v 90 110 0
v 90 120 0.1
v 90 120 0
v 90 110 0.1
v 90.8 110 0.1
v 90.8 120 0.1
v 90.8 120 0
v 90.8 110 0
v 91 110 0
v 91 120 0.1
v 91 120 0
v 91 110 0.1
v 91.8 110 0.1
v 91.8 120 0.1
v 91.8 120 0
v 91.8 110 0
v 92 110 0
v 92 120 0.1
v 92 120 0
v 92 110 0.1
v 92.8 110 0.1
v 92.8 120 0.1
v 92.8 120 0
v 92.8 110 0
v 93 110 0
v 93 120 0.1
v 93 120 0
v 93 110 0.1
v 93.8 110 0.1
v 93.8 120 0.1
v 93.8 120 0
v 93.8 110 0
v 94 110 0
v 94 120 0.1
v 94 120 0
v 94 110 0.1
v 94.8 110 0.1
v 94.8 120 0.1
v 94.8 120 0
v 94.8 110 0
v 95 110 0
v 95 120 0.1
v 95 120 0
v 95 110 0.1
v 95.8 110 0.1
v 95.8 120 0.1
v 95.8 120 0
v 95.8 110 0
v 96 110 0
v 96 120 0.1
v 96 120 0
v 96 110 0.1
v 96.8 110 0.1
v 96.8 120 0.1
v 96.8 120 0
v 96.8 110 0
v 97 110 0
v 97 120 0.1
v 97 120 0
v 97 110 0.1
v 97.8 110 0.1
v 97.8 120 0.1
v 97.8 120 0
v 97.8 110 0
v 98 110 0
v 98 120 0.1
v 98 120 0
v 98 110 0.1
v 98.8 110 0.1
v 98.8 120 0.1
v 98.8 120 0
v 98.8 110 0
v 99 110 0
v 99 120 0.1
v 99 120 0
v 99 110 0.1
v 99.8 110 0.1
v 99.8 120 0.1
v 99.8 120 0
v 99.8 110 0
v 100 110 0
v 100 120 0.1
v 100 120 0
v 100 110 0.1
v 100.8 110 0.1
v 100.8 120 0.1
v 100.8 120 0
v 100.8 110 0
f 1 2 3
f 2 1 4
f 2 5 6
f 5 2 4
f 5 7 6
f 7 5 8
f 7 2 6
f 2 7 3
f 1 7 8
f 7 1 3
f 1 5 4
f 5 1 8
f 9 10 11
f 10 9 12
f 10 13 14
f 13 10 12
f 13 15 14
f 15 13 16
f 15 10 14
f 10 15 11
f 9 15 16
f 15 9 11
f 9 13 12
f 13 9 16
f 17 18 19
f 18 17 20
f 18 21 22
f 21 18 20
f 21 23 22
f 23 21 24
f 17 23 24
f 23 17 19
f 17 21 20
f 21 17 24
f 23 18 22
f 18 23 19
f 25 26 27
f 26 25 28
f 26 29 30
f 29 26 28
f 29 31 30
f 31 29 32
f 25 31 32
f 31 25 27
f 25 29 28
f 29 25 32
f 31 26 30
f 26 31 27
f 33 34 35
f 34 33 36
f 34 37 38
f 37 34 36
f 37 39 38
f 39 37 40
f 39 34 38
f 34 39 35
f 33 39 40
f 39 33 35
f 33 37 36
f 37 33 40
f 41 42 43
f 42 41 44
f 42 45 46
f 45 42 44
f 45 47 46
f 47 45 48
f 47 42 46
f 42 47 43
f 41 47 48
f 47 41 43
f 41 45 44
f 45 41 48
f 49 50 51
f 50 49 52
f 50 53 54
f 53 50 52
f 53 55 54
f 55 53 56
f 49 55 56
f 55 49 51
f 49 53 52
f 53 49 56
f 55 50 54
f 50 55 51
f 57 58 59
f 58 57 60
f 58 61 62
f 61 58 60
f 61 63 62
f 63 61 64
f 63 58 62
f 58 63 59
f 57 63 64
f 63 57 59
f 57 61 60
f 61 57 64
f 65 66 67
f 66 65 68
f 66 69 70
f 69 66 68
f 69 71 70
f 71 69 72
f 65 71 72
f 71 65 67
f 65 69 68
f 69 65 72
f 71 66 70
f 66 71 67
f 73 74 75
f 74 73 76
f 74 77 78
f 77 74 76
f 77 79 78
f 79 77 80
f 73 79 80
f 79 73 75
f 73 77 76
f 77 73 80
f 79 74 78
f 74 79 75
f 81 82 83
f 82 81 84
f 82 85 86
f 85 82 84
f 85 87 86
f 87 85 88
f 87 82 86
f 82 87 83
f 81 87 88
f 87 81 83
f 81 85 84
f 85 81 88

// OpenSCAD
translate([10+80,10+100,0])
        for (i = [0 : 10]){
            translate([i,0,0])
                cube(size = [0.8,10,0.1]);
    }
